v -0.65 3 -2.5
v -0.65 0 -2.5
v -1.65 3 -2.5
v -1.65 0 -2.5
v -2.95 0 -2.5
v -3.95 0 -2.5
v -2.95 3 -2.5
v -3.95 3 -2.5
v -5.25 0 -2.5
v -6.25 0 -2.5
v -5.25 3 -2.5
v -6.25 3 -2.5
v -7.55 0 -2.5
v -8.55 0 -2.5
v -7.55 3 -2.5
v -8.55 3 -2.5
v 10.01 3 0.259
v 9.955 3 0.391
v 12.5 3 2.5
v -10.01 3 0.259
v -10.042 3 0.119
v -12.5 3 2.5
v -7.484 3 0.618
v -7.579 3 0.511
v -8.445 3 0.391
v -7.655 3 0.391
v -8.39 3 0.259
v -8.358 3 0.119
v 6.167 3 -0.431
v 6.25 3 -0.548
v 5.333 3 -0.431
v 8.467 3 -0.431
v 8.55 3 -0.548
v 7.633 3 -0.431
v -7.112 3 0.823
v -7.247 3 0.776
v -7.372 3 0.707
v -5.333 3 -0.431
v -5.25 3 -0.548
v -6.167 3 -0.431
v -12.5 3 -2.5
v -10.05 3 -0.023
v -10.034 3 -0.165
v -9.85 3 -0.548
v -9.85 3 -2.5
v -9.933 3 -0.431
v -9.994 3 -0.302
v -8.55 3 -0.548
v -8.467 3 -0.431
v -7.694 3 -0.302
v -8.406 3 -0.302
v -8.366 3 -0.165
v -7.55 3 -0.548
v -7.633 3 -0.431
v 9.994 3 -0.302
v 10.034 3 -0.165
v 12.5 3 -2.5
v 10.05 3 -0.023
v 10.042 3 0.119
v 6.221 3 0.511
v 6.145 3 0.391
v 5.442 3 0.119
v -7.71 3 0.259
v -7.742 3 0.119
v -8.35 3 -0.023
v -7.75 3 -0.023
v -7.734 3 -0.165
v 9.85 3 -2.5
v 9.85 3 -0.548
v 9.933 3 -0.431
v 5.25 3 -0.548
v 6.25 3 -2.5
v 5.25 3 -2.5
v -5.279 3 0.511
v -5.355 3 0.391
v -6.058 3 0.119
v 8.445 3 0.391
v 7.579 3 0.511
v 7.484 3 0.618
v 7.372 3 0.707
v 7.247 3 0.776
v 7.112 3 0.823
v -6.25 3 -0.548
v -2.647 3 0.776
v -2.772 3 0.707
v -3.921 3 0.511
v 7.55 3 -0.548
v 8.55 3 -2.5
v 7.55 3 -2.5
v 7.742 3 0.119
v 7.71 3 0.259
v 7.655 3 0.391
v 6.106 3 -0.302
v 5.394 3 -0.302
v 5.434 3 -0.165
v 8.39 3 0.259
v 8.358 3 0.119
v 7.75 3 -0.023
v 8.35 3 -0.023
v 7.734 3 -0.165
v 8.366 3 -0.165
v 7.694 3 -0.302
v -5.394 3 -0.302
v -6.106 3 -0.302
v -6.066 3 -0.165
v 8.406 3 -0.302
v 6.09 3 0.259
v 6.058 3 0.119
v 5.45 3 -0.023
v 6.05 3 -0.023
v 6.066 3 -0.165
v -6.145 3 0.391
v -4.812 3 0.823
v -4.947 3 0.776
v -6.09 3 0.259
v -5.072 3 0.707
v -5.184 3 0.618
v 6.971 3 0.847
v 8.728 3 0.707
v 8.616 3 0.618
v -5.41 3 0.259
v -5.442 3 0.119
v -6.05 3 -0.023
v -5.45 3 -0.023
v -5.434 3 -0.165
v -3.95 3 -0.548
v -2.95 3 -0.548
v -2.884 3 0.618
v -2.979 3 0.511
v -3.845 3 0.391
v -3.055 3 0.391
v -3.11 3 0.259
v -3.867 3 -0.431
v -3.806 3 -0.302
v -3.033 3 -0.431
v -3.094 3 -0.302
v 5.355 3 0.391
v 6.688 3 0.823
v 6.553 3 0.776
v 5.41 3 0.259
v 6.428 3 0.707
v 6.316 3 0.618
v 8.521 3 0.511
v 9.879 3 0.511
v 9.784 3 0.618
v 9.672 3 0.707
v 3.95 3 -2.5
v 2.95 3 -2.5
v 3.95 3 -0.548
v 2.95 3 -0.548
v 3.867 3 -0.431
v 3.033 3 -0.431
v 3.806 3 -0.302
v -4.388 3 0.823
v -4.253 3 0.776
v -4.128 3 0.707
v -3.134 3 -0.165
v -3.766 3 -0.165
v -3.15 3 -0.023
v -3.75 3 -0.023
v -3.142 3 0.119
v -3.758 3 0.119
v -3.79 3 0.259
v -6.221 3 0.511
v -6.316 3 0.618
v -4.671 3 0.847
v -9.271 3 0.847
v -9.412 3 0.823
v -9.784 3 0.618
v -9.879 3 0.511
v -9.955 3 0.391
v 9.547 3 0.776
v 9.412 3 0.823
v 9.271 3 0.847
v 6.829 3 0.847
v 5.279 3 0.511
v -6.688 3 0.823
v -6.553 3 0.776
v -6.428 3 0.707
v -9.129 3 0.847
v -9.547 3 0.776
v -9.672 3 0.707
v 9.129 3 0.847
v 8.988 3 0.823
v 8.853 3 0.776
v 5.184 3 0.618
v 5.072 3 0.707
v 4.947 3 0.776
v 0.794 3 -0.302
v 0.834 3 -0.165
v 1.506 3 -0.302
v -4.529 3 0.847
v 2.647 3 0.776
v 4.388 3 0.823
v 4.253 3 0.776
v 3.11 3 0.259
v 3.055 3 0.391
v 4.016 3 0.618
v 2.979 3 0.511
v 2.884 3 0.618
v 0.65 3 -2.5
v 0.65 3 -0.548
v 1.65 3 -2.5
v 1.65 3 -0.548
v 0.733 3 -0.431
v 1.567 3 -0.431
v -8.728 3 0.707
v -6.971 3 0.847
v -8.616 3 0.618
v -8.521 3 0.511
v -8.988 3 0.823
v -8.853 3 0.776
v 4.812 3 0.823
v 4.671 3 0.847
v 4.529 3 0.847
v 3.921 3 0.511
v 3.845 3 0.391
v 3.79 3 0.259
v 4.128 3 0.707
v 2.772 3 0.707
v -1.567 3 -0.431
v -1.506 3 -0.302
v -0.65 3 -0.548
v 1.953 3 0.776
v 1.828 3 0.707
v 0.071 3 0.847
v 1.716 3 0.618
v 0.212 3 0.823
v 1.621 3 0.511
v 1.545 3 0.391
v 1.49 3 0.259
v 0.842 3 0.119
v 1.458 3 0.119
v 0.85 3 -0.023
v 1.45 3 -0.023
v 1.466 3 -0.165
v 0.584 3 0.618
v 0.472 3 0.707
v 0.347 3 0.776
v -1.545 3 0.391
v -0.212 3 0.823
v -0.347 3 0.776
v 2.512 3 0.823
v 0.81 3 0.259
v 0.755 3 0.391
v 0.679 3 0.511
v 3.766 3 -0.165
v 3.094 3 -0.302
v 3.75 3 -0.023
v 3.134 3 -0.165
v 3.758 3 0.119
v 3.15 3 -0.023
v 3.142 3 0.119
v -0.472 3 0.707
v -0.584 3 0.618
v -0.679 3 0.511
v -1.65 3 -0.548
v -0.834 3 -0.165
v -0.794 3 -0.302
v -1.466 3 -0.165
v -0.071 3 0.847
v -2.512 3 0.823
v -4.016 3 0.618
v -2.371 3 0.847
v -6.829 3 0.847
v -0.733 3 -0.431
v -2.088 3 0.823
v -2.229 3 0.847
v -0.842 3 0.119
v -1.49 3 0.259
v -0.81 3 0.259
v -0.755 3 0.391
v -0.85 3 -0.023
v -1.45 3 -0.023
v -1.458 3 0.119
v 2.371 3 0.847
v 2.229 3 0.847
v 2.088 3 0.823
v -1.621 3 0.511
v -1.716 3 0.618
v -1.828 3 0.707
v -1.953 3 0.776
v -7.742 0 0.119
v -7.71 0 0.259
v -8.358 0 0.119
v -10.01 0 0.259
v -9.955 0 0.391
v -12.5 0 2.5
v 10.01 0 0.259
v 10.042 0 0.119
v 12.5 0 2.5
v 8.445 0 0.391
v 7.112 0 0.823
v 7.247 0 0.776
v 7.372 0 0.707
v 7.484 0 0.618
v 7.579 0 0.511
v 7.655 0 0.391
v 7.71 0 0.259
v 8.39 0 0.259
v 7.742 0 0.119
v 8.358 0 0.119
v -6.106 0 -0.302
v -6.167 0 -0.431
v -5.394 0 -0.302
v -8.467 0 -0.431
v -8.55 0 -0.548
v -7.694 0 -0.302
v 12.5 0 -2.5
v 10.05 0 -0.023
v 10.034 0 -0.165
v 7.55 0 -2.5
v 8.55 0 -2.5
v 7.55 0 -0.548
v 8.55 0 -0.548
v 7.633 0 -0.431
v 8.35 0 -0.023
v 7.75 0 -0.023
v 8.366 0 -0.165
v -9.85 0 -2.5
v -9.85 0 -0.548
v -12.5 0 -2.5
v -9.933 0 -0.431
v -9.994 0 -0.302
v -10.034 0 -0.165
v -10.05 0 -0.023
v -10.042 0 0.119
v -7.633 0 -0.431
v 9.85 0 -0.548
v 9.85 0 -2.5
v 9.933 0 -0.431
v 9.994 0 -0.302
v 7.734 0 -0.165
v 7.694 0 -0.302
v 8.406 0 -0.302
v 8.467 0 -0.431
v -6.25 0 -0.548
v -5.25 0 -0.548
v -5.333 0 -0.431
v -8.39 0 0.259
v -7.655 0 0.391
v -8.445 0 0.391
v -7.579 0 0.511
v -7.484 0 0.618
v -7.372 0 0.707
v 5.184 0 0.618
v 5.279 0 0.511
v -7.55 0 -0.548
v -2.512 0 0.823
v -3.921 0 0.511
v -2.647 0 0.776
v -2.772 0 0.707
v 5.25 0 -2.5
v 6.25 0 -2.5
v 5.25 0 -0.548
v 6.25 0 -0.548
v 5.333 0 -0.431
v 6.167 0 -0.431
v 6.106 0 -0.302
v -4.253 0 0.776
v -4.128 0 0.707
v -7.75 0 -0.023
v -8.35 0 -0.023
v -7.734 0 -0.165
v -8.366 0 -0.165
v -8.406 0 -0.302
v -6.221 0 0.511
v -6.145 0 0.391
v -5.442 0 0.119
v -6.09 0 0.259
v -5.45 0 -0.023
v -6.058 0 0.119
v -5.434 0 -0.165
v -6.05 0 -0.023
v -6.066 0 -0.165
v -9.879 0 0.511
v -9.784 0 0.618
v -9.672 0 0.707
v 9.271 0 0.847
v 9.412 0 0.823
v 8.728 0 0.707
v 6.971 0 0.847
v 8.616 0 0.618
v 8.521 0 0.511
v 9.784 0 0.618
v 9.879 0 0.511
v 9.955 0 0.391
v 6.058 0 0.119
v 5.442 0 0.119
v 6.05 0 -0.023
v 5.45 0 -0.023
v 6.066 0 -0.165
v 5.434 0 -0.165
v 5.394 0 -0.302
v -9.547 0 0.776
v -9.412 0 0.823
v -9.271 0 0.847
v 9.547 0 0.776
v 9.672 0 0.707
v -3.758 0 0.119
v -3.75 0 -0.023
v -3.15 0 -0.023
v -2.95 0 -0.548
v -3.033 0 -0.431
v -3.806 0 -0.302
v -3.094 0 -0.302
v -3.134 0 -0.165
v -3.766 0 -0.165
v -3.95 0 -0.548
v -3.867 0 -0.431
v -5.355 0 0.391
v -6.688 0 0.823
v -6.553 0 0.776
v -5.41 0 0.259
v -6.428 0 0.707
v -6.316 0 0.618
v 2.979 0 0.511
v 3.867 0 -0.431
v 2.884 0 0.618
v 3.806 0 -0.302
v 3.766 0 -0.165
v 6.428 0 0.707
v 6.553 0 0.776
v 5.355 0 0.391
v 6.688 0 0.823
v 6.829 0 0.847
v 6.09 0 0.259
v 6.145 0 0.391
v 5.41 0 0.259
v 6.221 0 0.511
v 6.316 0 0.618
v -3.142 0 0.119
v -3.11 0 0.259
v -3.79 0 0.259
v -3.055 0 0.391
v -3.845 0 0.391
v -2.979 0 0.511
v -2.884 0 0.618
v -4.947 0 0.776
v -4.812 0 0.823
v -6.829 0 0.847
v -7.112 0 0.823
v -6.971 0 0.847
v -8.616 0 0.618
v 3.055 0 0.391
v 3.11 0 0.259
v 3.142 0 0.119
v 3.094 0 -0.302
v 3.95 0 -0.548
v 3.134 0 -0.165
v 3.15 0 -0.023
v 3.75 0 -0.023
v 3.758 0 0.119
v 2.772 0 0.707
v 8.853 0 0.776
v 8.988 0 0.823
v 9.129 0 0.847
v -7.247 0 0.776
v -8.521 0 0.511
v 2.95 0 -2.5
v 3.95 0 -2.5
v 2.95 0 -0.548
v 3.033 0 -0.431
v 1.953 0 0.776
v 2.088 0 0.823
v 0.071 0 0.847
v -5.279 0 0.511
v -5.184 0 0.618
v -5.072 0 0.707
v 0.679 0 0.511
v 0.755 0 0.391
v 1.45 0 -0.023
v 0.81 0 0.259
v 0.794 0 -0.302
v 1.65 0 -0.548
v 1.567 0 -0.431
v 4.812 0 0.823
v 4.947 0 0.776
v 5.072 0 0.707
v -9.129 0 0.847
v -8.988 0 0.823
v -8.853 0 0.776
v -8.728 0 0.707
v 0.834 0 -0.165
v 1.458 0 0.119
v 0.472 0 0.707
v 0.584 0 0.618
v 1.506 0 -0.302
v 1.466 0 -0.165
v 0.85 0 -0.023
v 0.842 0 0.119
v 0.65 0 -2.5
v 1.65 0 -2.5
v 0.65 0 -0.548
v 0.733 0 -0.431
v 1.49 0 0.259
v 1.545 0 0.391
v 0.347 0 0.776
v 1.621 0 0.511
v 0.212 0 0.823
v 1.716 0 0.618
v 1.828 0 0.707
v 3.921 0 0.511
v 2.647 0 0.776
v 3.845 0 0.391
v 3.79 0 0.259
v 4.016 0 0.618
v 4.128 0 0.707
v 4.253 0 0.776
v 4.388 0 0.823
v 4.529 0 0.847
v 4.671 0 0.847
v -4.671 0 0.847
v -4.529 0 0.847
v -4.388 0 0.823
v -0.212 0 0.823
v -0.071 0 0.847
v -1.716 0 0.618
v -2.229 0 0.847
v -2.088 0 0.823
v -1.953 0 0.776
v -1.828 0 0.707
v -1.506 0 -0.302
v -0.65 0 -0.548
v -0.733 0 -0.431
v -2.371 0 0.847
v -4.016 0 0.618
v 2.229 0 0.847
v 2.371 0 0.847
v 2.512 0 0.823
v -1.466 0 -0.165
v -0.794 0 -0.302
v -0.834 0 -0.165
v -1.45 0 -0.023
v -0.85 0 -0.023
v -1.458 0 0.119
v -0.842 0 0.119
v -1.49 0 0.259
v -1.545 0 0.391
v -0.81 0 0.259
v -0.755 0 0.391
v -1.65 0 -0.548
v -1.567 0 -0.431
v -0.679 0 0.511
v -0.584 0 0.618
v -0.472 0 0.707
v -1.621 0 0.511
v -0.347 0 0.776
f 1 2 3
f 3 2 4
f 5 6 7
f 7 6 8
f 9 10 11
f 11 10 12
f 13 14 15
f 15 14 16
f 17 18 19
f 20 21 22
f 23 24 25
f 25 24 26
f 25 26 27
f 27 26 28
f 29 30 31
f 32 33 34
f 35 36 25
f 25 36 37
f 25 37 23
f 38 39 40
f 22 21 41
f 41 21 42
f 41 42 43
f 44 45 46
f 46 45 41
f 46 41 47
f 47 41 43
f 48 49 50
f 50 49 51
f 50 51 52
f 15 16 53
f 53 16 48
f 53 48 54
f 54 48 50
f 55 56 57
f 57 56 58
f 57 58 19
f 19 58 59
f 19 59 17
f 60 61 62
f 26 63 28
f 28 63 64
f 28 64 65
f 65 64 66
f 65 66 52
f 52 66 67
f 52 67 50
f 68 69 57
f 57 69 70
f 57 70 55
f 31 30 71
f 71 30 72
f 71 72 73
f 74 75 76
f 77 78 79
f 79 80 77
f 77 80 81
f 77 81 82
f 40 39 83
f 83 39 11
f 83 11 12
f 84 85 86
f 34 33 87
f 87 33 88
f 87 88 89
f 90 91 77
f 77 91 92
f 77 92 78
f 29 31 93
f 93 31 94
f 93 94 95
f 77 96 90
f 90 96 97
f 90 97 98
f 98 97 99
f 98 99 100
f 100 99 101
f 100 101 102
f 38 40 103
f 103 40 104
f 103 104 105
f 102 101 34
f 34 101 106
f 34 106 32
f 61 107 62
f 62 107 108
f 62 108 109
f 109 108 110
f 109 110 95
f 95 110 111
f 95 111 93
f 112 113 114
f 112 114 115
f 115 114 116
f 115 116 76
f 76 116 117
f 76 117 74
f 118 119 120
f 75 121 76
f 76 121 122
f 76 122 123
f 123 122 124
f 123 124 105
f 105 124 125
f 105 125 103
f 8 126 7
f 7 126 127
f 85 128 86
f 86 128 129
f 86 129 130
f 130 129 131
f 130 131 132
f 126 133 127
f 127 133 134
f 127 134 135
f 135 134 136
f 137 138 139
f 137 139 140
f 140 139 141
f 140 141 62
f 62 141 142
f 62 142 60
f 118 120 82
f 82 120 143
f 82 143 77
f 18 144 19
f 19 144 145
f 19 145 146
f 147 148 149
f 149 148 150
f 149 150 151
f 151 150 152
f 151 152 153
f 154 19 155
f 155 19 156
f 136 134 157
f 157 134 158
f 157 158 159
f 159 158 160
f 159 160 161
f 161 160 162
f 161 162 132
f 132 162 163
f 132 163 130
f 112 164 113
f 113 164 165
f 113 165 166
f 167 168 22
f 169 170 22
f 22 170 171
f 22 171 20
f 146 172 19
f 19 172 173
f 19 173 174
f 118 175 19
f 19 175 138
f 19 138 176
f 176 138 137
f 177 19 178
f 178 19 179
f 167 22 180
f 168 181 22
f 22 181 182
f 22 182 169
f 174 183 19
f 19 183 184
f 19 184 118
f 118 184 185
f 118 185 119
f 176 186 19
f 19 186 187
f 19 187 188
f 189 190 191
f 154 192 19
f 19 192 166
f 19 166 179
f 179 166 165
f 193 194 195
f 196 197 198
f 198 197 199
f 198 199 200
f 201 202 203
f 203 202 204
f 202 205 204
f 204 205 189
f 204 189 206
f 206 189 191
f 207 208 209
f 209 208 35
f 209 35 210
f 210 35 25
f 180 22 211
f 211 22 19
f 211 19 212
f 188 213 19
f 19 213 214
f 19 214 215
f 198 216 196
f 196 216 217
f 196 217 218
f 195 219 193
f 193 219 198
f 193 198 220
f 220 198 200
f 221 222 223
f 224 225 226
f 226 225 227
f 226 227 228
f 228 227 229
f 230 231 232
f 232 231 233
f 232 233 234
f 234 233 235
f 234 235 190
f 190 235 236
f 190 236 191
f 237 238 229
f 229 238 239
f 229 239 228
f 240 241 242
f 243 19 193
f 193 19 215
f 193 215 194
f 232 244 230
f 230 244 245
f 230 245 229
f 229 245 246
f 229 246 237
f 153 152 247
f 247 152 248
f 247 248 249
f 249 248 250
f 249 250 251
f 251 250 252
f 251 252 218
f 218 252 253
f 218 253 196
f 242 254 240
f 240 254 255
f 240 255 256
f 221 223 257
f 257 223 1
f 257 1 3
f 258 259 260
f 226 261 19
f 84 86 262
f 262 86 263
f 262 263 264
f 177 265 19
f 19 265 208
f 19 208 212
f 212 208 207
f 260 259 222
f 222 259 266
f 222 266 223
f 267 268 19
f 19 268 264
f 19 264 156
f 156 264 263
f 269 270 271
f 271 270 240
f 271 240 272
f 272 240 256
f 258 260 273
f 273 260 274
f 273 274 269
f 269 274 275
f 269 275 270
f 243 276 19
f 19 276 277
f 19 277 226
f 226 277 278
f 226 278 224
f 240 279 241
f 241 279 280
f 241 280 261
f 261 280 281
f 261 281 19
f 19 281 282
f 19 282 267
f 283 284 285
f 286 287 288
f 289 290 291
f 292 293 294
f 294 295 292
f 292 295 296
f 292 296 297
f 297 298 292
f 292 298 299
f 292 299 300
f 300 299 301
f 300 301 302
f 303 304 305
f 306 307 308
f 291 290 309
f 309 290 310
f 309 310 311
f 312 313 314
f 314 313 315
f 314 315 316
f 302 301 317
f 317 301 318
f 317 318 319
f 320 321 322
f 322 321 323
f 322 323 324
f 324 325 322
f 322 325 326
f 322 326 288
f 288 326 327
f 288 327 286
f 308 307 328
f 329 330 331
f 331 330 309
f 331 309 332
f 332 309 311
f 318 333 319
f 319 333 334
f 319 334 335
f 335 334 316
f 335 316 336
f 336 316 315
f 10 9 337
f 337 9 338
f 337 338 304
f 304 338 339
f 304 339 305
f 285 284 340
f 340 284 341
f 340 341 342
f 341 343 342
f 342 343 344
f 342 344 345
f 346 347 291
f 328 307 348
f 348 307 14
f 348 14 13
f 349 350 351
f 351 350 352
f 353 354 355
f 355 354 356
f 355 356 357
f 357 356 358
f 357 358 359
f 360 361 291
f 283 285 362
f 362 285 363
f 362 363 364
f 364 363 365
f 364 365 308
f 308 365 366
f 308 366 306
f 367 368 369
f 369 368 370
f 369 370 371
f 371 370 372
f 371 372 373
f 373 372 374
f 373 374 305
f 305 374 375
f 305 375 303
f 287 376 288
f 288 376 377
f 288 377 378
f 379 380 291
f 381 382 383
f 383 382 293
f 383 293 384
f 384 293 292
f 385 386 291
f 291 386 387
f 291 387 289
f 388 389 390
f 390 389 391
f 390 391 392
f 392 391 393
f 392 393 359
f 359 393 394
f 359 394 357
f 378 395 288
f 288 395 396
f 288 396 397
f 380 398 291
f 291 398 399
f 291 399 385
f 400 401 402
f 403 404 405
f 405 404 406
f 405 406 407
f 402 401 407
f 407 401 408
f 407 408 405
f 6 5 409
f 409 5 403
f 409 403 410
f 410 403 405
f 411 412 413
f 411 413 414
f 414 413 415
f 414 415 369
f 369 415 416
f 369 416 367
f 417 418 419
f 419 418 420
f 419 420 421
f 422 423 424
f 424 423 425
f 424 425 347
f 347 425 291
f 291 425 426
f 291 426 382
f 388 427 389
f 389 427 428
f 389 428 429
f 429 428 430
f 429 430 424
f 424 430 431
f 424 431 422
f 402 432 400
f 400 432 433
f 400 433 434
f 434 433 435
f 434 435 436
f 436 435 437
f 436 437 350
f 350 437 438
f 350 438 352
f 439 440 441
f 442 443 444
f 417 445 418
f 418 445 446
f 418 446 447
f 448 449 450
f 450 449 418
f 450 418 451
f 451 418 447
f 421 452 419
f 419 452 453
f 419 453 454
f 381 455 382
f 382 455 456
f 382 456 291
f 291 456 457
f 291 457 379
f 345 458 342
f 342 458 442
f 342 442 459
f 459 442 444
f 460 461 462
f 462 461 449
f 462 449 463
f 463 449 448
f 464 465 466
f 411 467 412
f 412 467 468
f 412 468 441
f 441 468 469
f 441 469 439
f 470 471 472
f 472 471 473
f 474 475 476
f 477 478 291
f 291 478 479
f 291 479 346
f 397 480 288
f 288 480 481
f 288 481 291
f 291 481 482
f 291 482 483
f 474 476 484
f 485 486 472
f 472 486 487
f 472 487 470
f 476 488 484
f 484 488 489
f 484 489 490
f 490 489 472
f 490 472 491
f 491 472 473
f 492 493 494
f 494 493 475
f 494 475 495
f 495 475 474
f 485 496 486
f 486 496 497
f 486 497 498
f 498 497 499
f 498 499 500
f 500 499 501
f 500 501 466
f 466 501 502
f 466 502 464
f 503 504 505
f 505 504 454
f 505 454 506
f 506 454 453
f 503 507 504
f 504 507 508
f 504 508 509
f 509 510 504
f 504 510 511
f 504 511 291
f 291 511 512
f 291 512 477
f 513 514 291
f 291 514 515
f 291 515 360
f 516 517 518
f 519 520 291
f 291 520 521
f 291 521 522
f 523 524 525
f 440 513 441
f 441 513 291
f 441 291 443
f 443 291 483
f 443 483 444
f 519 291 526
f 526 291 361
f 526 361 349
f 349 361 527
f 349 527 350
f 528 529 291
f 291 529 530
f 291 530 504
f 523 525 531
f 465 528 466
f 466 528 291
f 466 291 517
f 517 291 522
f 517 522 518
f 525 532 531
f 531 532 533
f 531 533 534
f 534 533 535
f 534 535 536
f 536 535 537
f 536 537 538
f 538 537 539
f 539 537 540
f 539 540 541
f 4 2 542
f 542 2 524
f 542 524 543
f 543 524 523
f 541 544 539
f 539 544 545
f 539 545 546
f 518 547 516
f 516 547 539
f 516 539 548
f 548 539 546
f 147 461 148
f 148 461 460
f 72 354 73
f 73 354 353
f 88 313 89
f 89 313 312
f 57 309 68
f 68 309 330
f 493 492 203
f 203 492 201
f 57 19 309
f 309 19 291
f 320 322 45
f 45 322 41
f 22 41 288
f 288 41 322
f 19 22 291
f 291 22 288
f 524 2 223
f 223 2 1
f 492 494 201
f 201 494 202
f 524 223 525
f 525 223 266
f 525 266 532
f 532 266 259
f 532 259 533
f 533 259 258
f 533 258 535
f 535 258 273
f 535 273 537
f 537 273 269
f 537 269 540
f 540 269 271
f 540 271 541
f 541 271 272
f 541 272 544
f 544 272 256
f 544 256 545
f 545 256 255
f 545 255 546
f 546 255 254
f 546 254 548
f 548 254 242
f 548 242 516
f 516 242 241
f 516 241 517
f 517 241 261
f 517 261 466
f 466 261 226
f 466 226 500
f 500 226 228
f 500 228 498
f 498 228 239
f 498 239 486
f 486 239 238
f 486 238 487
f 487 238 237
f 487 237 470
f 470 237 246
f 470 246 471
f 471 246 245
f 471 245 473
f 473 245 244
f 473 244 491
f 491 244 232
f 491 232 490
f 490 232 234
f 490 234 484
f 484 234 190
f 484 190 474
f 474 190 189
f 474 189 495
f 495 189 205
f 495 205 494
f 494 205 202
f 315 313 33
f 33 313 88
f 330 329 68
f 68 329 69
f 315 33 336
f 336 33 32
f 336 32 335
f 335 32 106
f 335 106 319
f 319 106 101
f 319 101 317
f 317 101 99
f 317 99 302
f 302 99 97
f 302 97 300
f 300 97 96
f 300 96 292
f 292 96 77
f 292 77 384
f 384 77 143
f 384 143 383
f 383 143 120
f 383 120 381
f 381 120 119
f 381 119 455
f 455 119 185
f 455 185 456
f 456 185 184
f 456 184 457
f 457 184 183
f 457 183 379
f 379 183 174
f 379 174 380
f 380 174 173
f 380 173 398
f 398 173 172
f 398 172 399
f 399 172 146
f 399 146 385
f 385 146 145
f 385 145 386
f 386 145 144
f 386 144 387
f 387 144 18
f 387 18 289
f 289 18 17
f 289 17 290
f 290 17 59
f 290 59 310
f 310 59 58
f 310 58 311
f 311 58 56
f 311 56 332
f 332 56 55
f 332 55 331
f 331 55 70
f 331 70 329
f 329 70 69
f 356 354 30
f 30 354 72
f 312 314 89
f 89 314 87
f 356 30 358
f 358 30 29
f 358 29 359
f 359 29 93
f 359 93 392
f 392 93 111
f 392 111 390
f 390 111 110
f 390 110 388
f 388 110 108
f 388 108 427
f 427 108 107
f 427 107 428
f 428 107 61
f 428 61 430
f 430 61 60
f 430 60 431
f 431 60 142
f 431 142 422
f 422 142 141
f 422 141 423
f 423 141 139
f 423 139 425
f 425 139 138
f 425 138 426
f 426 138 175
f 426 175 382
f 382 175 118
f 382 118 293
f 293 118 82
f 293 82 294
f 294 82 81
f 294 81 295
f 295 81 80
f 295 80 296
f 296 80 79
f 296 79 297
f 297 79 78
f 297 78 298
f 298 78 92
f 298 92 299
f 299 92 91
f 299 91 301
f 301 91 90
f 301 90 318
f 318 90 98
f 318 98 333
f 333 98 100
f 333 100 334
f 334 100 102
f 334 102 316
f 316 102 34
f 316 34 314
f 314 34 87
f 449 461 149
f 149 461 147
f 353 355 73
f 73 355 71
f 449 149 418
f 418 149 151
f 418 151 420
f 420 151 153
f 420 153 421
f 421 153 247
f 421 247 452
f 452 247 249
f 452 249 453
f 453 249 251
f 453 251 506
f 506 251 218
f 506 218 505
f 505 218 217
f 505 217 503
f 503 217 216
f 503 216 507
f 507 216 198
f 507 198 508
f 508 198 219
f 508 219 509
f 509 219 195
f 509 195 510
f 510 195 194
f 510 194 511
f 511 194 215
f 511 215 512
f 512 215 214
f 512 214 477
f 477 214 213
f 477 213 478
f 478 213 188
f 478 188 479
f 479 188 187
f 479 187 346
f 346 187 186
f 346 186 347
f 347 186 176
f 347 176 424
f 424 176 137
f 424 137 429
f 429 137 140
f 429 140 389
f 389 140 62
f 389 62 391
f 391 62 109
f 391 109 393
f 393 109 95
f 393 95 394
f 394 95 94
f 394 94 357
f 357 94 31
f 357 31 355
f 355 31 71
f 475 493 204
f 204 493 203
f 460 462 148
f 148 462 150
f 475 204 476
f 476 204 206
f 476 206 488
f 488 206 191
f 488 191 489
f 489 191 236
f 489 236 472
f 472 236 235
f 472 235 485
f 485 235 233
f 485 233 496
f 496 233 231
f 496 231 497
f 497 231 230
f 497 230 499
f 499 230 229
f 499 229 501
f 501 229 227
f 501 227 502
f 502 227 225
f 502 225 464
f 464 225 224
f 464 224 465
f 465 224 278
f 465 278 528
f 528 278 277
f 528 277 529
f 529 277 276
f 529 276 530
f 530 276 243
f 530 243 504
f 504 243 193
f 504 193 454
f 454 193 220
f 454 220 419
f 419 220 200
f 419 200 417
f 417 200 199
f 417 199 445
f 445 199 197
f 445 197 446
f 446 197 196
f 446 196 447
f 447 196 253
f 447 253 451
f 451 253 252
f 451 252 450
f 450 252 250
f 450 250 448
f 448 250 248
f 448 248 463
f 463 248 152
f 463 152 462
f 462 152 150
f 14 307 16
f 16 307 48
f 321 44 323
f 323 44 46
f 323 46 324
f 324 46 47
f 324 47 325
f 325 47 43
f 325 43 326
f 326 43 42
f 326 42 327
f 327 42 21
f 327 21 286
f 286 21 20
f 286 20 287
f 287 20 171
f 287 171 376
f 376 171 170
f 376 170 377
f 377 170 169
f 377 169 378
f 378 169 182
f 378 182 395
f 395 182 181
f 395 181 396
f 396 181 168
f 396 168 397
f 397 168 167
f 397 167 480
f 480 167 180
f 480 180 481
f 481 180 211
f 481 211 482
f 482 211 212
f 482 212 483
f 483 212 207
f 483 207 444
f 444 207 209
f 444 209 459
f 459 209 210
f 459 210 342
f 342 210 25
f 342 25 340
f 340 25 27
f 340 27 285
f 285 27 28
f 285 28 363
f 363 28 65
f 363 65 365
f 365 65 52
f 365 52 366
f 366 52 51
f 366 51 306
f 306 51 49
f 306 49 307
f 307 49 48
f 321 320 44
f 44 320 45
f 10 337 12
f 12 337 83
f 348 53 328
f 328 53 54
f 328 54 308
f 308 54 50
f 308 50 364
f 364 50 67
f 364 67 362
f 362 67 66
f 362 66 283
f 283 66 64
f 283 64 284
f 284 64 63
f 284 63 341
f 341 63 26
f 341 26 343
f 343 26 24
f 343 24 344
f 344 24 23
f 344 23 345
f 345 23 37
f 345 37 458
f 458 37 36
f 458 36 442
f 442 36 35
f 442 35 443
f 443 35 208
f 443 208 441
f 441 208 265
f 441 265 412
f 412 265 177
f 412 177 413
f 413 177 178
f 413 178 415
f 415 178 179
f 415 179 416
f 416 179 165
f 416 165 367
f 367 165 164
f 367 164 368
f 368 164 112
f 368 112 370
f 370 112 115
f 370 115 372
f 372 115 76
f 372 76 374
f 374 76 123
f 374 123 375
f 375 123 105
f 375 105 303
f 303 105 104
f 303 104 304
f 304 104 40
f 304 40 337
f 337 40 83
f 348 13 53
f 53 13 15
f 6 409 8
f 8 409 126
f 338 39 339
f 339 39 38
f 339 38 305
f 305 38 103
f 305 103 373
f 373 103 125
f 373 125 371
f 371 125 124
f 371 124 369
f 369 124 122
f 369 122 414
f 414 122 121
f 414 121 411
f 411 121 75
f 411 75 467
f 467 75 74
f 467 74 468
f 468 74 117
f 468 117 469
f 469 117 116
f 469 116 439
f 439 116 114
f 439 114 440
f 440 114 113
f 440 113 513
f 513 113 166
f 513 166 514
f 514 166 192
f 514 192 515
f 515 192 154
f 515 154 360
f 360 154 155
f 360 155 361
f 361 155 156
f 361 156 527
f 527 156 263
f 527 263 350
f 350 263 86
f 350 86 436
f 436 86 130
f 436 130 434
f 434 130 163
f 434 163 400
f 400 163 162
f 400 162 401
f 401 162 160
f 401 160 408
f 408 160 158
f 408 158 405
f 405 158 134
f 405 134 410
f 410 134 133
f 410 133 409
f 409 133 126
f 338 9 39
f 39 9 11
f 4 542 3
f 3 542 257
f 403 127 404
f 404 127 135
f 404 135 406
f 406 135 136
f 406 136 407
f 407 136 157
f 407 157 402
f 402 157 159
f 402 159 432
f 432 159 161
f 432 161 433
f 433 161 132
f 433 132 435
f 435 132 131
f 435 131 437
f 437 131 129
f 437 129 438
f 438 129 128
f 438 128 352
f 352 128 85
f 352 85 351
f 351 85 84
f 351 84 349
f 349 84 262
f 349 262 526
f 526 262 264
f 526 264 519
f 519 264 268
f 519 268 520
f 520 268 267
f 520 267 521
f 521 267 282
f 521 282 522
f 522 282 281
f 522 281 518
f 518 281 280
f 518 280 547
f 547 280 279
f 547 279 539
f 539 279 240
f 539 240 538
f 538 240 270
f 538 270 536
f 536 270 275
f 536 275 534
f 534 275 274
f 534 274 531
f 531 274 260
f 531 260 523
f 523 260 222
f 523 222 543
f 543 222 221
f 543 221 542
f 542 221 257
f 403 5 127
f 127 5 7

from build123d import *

# Parameters (mm, degrees)
CROQUIS1_W              = 25
CROQUIS1_H              = 5
SALIENTE_EXTRUIR1_DEPTH = 3
CORTAR_EXTRUIR6_DEPTH   = 3
MATRIZL4_COUNT          = 5
MATRIZL4_PITCH          = 2.3
SIMETR_A3_COPY_1_DEPTH  = 3
SIMETR_A3_COPY_2_DEPTH  = 3
SIMETR_A3_COPY_3_DEPTH  = 3
SIMETR_A3_COPY_4_DEPTH  = 3
SIMETR_A3_COPY_5_DEPTH  = 3


with BuildPart() as part:
    # Croquis1 → Saliente-Extruir1 (new body)
    with BuildSketch(Plane(origin=(0, 0, 0), x_dir=(1, 0, 0), z_dir=(0, 1, 0))):
        Rectangle(CROQUIS1_W, CROQUIS1_H)
    extrude(amount=SALIENTE_EXTRUIR1_DEPTH)

    # Croquis2 → Cortar-Extruir6 (cut)
    with BuildSketch(Plane(origin=(0, 3, 0), x_dir=(1, 0, 0), z_dir=(0, 1, 0))):
        with BuildLine():
            Line((0.65, 0.547722558), (0.65, 2.5))
            Line((0.65, 2.5), (-0.65, 2.5))
            Line((-0.65, 2.5), (-0.65, 0.547722558))
            ThreePointArc((-0.65, 0.547722558), (0, -0.85), (0.65, 0.547722558))
        make_face()
    cortar_extruir6 = extrude(amount=-CORTAR_EXTRUIR6_DEPTH, mode=Mode.SUBTRACT)

    # MatrizL4: Cortar-Extruir6 ×5
    with Locations(*[(i * MATRIZL4_PITCH, 0, 0) for i in range(1, MATRIZL4_COUNT)]):
        add(cortar_extruir6, mode=Mode.SUBTRACT)

    # Simetría3 copy 1 sketch → Simetría3 copy 1 (cut)
    with BuildSketch(Plane(origin=(-2.3, 3, 0), x_dir=(-1, 0, 0), z_dir=(0, 1, 0))):
        with BuildLine():
            Line((0.65, -0.547722558), (0.65, -2.5))
            Line((0.65, -2.5), (-0.65, -2.5))
            Line((-0.65, -2.5), (-0.65, -0.547722558))
            ThreePointArc((-0.65, -0.547722558), (0, 0.85), (0.65, -0.547722558))
        make_face()
    extrude(amount=-SIMETR_A3_COPY_1_DEPTH, mode=Mode.SUBTRACT)

    # Simetría3 copy 2 sketch → Simetría3 copy 2 (cut)
    with BuildSketch(Plane(origin=(-4.6, 3, 0), x_dir=(-1, 0, 0), z_dir=(0, 1, 0))):
        with BuildLine():
            Line((0.65, -0.547722558), (0.65, -2.5))
            Line((0.65, -2.5), (-0.65, -2.5))
            Line((-0.65, -2.5), (-0.65, -0.547722558))
            ThreePointArc((-0.65, -0.547722558), (0, 0.85), (0.65, -0.547722558))
        make_face()
    extrude(amount=-SIMETR_A3_COPY_2_DEPTH, mode=Mode.SUBTRACT)

    # Simetría3 copy 3 sketch → Simetría3 copy 3 (cut)
    with BuildSketch(Plane(origin=(-6.9, 3, 0), x_dir=(-1, 0, 0), z_dir=(0, 1, 0))):
        with BuildLine():
            Line((0.65, -0.547722558), (0.65, -2.5))
            Line((0.65, -2.5), (-0.65, -2.5))
            Line((-0.65, -2.5), (-0.65, -0.547722558))
            ThreePointArc((-0.65, -0.547722558), (0, 0.85), (0.65, -0.547722558))
        make_face()
    extrude(amount=-SIMETR_A3_COPY_3_DEPTH, mode=Mode.SUBTRACT)

    # Simetría3 copy 4 sketch → Simetría3 copy 4 (cut)
    with BuildSketch(Plane(origin=(-9.2, 3, 0), x_dir=(-1, 0, 0), z_dir=(0, 1, 0))):
        with BuildLine():
            Line((0.65, -0.547722558), (0.65, -2.5))
            Line((0.65, -2.5), (-0.65, -2.5))
            Line((-0.65, -2.5), (-0.65, -0.547722558))
            ThreePointArc((-0.65, -0.547722558), (0, 0.85), (0.65, -0.547722558))
        make_face()
    extrude(amount=-SIMETR_A3_COPY_4_DEPTH, mode=Mode.SUBTRACT)

    # Simetría3 copy 5 sketch → Simetría3 copy 5 (cut)
    with BuildSketch(Plane(origin=(0, 3, 0), x_dir=(-1, 0, 0), z_dir=(0, 1, 0))):
        with BuildLine():
            Line((0.65, -0.547722558), (0.65, -2.5))
            Line((0.65, -2.5), (-0.65, -2.5))
            Line((-0.65, -2.5), (-0.65, -0.547722558))
            ThreePointArc((-0.65, -0.547722558), (0, 0.85), (0.65, -0.547722558))
        make_face()
    extrude(amount=-SIMETR_A3_COPY_5_DEPTH, mode=Mode.SUBTRACT)


solid = part.part
